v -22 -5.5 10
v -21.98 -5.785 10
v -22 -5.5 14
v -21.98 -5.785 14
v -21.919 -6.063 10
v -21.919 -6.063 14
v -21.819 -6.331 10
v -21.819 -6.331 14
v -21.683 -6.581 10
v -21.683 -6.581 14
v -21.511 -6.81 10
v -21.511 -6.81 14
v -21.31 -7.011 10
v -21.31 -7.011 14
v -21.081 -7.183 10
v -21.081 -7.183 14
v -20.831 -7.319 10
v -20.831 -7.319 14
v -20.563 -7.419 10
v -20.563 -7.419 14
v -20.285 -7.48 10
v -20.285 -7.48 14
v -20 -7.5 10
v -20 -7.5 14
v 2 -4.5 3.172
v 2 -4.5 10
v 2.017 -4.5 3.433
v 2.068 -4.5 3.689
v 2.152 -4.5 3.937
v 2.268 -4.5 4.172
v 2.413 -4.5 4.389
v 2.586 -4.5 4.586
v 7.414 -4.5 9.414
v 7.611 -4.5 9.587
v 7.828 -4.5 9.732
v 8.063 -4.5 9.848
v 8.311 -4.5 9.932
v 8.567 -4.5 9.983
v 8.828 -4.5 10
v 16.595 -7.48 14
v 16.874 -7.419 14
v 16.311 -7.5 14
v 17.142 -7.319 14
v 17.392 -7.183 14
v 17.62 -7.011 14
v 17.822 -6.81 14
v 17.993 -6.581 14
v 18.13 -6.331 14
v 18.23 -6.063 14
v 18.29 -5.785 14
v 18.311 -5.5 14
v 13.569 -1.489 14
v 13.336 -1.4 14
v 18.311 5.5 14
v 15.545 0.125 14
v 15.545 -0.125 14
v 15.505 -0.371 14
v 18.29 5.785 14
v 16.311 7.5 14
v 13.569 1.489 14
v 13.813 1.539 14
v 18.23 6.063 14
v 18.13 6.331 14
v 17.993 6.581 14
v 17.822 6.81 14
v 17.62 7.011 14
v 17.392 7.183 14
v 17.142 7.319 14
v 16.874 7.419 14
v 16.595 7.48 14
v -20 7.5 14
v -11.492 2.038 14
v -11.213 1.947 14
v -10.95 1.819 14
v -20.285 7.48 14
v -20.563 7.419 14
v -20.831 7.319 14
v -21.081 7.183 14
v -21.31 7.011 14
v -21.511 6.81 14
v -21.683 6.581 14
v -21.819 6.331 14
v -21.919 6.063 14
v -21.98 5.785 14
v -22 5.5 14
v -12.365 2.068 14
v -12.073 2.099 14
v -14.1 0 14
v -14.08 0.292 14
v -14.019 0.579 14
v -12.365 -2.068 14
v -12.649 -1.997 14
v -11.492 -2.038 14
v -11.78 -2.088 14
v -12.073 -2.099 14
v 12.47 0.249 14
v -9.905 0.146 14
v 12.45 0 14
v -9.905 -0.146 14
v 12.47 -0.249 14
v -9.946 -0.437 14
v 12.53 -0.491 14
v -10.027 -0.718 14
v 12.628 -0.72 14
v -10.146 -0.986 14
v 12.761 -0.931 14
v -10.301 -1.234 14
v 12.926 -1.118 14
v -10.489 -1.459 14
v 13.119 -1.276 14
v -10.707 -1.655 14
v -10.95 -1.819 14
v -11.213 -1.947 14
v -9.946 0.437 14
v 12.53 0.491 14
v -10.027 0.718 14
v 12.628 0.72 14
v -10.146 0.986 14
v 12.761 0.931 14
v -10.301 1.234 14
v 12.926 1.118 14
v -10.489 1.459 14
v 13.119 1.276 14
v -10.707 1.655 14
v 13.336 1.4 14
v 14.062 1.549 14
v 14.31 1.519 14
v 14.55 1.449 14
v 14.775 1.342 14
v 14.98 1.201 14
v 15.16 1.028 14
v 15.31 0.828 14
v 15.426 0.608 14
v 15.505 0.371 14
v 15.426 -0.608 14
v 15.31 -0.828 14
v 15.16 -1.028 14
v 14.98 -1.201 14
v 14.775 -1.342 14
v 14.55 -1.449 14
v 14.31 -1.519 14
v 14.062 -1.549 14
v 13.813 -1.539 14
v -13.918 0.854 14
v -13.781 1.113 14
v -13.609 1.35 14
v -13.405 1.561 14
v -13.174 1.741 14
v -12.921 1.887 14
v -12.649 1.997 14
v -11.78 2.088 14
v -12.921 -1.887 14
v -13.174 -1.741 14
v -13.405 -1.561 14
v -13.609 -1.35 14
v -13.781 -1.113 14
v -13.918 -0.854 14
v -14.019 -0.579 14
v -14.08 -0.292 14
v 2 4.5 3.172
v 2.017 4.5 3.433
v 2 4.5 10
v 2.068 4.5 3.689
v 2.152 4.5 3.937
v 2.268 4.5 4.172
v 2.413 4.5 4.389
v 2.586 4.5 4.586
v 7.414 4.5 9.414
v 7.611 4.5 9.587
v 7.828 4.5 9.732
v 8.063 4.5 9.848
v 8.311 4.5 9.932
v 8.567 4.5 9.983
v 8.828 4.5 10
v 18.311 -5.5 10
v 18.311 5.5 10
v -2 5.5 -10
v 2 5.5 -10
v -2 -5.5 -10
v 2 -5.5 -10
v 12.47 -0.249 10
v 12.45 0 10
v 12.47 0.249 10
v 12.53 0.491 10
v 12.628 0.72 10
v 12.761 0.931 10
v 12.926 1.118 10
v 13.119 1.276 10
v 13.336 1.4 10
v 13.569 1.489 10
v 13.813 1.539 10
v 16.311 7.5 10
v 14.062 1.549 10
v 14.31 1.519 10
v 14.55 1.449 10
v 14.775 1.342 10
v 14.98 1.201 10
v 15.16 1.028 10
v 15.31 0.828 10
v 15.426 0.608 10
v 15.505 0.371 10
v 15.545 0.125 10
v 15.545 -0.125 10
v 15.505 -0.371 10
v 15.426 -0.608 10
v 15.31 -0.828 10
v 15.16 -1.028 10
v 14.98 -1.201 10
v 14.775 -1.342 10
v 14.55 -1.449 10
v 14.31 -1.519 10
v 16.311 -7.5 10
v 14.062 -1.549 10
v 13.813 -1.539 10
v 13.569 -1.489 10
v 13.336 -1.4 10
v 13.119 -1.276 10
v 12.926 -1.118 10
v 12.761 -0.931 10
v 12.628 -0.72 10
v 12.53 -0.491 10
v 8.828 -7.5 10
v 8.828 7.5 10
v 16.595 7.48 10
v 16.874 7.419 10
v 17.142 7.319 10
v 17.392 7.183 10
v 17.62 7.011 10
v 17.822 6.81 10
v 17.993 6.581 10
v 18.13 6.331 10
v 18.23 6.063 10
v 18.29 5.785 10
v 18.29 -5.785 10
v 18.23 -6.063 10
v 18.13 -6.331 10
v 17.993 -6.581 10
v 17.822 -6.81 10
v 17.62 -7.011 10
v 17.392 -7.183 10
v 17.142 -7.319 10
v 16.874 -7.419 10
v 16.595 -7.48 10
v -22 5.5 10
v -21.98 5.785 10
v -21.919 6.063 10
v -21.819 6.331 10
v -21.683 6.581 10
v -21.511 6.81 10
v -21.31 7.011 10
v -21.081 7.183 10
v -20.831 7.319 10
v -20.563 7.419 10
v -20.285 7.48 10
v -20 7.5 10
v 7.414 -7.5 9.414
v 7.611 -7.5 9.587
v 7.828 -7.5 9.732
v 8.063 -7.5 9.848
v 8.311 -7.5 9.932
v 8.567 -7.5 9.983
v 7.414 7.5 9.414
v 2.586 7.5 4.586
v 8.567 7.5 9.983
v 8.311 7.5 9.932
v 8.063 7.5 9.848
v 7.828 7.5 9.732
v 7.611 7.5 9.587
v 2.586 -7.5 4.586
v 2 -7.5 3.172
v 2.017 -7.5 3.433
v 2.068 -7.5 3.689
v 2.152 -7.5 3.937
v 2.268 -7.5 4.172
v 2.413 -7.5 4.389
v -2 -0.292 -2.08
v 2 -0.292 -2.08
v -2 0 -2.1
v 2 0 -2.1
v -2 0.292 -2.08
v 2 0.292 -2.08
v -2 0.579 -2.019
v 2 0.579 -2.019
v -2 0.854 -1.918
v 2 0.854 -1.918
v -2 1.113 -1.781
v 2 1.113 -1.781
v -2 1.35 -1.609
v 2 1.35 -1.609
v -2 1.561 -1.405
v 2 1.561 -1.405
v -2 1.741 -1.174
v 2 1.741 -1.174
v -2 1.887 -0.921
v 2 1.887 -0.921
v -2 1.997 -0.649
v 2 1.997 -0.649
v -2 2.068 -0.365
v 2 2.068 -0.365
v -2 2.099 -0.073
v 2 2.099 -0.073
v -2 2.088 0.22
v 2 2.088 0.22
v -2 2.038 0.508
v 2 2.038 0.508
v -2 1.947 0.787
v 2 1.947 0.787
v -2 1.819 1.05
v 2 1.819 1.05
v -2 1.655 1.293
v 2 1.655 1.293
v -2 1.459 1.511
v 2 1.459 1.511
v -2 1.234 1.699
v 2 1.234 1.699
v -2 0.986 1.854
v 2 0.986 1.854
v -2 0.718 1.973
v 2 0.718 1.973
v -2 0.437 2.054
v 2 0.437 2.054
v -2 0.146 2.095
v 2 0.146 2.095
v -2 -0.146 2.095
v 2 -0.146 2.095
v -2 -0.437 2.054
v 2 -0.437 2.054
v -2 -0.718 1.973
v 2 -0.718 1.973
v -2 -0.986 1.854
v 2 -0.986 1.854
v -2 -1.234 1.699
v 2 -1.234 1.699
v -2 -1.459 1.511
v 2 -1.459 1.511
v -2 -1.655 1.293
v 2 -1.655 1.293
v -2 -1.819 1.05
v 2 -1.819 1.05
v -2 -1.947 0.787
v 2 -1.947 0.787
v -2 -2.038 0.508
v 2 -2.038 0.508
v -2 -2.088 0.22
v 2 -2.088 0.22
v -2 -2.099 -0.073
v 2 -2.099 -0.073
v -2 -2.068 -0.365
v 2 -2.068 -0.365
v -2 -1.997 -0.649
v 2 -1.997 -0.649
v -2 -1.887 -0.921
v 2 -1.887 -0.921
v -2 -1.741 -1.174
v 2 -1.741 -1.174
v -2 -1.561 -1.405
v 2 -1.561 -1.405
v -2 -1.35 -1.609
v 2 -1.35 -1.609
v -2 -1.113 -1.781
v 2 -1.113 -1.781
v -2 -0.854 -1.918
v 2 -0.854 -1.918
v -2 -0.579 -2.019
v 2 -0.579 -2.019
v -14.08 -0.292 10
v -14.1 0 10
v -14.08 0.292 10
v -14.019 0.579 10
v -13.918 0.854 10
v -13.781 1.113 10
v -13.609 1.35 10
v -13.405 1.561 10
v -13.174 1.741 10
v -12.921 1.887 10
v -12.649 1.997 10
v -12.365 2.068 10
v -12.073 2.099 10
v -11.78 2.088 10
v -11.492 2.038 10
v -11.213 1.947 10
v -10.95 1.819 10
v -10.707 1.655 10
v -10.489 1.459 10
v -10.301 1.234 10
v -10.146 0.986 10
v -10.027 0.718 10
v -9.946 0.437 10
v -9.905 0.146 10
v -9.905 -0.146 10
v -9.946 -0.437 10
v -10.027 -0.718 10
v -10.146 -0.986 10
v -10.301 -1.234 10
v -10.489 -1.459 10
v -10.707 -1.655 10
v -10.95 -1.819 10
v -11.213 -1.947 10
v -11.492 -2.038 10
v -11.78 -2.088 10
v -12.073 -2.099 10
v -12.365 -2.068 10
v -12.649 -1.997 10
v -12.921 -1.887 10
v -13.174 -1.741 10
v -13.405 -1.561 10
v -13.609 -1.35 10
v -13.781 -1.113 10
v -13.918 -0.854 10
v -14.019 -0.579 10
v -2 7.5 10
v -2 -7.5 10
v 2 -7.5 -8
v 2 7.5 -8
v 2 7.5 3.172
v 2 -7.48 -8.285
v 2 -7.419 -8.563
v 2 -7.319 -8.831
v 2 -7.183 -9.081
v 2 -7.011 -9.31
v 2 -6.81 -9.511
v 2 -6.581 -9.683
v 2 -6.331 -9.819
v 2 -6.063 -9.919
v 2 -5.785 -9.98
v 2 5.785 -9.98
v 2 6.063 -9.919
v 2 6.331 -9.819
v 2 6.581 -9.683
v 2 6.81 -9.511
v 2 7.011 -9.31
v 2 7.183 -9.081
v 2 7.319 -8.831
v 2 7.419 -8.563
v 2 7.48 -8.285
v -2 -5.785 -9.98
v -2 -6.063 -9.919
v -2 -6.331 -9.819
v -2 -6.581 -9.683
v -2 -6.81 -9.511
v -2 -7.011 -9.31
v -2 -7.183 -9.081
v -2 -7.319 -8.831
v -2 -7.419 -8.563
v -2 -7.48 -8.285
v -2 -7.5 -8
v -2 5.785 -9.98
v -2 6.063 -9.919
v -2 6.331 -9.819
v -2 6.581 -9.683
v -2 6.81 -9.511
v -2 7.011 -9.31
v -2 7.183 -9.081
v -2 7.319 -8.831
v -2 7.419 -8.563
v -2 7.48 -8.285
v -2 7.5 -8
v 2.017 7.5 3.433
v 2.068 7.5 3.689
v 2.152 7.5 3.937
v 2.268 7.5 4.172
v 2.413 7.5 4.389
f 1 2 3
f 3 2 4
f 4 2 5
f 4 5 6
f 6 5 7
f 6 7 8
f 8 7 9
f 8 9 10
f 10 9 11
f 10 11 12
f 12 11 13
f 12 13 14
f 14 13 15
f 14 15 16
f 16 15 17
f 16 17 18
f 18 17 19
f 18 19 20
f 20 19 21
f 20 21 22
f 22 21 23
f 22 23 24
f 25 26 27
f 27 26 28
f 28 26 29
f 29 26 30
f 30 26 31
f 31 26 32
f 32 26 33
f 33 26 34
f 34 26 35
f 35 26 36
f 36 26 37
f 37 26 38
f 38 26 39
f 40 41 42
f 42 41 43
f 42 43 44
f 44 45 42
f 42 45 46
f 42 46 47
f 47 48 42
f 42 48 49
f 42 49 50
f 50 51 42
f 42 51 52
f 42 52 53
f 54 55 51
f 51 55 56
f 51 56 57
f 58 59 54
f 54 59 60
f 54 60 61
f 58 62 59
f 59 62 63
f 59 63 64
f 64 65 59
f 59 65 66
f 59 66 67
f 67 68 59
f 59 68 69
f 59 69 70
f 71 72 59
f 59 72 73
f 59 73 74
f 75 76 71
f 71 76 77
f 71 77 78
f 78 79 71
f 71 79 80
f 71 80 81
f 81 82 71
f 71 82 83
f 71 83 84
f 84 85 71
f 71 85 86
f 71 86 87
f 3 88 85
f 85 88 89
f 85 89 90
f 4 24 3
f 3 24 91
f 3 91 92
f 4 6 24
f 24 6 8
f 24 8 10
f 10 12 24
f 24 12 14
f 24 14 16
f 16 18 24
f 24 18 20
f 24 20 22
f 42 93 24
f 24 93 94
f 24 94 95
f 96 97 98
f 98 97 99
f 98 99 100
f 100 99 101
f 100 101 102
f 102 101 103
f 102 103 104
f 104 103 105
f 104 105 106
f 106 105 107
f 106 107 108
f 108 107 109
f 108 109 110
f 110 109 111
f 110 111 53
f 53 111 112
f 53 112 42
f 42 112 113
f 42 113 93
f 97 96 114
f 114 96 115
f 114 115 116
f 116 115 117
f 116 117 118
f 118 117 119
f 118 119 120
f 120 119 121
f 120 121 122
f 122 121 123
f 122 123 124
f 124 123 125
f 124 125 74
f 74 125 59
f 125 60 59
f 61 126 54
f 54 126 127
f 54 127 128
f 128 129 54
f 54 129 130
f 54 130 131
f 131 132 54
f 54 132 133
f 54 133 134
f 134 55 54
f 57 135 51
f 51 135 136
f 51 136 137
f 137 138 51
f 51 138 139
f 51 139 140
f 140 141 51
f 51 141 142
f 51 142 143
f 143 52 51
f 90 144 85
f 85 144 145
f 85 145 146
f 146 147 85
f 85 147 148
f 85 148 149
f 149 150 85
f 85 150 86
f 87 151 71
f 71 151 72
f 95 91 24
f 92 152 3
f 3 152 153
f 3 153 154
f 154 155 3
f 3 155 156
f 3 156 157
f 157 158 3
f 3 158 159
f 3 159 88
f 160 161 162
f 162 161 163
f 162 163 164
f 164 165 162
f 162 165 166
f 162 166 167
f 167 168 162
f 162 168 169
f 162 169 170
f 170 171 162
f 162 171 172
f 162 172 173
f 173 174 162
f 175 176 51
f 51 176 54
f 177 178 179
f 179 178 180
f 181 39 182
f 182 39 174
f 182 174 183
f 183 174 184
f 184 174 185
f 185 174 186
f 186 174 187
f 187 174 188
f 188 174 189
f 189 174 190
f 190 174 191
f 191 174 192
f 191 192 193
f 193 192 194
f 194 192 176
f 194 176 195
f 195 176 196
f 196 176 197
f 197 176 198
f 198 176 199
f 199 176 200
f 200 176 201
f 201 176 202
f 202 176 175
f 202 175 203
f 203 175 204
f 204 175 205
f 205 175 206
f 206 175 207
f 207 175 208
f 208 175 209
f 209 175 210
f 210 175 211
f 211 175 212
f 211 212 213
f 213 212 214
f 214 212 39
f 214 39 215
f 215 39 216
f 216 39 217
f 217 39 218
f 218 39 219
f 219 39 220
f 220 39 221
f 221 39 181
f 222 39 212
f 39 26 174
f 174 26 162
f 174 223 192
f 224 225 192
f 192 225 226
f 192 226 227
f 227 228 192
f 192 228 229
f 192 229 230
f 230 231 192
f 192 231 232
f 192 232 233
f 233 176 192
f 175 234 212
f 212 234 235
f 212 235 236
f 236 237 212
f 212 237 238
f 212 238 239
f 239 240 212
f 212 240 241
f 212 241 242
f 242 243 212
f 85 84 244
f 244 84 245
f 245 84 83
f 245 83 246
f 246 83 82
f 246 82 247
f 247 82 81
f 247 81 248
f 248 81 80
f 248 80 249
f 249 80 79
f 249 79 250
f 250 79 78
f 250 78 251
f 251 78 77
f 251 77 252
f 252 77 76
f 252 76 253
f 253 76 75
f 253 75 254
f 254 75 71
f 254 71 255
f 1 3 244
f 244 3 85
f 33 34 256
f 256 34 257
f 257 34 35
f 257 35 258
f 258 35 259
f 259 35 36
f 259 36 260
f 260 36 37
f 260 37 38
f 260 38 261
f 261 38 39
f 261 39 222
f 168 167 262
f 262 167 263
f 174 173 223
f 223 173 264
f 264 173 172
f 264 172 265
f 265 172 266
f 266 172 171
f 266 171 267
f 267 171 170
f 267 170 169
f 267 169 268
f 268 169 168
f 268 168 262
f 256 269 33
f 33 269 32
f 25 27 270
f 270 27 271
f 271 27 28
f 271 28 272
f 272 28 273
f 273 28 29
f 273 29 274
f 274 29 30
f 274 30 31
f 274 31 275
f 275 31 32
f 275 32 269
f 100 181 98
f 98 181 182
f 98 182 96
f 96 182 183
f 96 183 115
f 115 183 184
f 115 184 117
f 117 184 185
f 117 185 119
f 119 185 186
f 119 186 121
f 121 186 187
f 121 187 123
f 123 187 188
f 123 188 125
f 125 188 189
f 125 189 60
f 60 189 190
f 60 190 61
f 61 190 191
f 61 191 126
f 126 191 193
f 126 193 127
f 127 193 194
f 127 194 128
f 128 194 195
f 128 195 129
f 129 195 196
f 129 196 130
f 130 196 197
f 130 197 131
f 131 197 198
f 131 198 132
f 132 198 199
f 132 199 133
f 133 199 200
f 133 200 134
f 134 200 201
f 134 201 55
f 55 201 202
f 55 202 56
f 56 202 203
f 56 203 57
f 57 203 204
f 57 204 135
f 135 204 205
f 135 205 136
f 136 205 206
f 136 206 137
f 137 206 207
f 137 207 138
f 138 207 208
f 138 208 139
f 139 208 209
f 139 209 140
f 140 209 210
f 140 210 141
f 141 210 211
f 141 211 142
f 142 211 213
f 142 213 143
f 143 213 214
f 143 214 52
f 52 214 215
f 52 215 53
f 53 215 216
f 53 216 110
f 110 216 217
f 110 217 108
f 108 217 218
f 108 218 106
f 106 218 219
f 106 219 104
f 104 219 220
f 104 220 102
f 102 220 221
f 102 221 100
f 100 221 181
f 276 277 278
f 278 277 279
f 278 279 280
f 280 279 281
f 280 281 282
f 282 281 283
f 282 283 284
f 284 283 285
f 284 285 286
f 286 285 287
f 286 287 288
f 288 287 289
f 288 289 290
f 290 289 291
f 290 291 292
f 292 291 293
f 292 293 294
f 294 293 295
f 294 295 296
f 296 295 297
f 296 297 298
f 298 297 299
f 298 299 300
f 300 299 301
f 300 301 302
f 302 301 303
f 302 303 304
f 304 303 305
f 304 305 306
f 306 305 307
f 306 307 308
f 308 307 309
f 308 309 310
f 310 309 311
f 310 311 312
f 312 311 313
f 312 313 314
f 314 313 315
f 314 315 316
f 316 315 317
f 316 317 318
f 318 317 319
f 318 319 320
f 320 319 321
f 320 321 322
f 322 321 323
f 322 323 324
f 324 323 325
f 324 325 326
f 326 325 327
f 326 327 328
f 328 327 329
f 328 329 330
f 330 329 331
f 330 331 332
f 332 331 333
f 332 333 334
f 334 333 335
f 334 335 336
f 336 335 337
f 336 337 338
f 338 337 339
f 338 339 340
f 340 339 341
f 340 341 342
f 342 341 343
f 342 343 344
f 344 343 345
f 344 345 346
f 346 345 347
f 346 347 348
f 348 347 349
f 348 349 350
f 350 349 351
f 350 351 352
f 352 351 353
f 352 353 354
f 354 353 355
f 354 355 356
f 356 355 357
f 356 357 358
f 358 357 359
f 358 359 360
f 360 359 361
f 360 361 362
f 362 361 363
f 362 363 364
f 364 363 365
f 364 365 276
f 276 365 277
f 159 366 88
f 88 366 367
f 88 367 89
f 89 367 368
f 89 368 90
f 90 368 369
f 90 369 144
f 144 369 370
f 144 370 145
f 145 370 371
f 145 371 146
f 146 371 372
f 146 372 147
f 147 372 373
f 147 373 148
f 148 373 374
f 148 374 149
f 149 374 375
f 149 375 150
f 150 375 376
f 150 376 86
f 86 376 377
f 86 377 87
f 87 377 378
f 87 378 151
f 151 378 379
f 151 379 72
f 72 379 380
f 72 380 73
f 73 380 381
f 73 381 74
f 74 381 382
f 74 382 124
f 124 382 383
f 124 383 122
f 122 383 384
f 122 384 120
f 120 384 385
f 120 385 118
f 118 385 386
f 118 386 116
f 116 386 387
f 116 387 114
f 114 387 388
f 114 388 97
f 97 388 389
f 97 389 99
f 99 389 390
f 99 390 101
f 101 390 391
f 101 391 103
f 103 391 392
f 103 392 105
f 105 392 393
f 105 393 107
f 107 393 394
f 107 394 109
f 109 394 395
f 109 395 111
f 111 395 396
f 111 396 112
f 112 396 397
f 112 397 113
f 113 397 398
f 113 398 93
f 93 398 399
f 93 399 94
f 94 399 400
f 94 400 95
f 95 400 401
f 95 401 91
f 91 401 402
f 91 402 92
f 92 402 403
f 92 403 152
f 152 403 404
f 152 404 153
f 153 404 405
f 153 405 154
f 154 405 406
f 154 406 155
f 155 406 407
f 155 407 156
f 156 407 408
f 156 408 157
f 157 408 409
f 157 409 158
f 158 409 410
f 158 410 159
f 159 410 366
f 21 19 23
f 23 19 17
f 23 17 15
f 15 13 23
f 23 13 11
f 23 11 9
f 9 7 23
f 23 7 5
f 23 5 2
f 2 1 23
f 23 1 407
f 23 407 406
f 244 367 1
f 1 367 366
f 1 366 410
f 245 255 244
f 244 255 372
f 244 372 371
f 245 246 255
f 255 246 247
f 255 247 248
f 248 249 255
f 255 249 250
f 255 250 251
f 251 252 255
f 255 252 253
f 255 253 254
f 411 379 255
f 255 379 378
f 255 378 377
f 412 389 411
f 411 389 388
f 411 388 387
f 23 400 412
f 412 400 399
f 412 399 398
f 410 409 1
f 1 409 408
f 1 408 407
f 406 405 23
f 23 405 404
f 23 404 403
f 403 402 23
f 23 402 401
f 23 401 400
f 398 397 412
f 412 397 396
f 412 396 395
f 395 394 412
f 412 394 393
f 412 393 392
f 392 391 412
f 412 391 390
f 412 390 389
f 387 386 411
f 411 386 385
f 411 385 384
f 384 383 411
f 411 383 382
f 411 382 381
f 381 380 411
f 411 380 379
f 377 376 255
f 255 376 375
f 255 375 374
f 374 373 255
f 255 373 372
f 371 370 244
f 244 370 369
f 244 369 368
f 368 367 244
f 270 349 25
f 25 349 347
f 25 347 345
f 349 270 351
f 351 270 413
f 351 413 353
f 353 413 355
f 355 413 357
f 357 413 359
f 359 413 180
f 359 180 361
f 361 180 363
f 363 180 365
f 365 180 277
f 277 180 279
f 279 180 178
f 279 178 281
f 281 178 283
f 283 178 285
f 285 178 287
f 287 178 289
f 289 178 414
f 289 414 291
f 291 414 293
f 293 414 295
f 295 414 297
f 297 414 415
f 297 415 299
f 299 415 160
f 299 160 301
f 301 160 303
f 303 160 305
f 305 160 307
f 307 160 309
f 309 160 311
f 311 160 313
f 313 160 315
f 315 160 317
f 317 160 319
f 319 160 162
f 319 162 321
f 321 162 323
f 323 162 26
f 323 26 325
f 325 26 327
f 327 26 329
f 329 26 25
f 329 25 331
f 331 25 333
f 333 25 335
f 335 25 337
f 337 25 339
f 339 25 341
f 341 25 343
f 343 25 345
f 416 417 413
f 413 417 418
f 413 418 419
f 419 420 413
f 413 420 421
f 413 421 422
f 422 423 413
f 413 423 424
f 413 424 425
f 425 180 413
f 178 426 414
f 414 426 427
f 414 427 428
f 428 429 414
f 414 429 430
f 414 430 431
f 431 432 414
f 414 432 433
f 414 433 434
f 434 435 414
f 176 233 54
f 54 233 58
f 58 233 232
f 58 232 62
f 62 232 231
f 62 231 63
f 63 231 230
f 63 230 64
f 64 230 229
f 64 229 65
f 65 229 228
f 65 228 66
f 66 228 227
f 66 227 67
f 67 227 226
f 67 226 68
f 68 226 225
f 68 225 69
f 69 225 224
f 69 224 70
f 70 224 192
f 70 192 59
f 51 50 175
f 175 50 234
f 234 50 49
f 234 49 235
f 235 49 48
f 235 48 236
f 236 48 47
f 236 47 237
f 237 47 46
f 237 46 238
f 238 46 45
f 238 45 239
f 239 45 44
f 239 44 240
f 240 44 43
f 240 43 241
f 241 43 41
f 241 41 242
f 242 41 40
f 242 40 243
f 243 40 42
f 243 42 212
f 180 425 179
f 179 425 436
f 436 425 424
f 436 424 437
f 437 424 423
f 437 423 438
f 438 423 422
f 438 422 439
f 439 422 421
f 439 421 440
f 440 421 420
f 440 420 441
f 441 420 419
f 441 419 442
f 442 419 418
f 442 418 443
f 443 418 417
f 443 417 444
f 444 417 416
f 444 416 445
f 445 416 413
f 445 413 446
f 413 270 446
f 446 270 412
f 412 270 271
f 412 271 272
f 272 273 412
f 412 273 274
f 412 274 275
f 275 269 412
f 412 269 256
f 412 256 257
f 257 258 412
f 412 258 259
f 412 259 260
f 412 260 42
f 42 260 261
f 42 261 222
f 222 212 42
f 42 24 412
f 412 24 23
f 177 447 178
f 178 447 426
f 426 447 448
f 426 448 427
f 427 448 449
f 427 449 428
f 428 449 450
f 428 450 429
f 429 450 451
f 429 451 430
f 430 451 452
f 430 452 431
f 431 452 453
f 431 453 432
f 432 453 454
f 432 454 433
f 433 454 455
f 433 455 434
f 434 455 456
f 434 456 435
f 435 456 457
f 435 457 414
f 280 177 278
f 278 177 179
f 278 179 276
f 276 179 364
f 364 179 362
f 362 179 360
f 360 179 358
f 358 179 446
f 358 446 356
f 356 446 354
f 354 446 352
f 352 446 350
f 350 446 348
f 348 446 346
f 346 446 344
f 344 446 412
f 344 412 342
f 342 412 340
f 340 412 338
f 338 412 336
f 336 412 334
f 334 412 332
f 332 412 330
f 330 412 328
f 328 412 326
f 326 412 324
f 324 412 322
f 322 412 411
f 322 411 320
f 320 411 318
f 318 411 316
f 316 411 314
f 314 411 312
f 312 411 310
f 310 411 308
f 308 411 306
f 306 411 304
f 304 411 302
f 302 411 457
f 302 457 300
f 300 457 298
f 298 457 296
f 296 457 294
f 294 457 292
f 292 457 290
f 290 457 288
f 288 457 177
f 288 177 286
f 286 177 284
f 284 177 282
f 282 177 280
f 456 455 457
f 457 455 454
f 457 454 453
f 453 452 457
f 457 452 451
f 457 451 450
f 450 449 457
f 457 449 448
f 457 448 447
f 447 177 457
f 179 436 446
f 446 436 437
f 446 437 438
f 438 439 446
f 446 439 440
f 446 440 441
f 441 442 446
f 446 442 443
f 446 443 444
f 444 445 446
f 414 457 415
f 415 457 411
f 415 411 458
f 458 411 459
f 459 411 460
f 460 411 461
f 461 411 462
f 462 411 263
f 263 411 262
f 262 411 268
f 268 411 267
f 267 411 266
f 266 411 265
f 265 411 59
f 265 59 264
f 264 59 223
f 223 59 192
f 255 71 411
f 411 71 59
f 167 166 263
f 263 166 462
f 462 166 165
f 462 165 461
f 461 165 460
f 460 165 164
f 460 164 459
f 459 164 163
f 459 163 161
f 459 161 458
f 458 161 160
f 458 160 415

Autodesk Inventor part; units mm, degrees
ref_plane "YZ Plane" through (0, 0, 0) normal (1, 0, 0) x (0, 1, 0)
ref_plane "XZ Plane" through (0, 0, 0) normal (0, 1, 0) x (-1, 0, 0)
ref_plane "XY Plane" through (0, 0, 0) normal (0, 0, 1) x (1, 0, 0)
sketch "Sketch1" plane through (0, 0, 0) normal (0, 1, 0) x (-1, 0, 0)
  line L0 (22, 14) -> (-22, 14)
  line L1 (-22, 14) -> (-22, 10)
  line L2 (-22, 10) -> (-2, 10)
  line L3 (-2, 10) -> (-2, -10)
  line L4 (-2, -10) -> (2, -10)
  line L5 (2, -10) -> (2, 10)
  line L6 (2, 10) -> (22, 10)
  line L7 (22, 10) -> (22, 14)
  point P0 (0, 0)
  point P1 (-2, 0)
  point P2 (0, 14)
  dimension "d0" = 20
  dimension "d1" = 4
  dimension "d2" = 20
  dimension "d3" = 4
  dimension "d4" = 20
extrude "Extrusion1" add sketch "Sketch1" along normal mid plane 15
sketch "Sketch2" plane through (-2, -7.5, 10) normal (0, 0, -1) x (-1, 0, 0)
  line L0 (20, 0) -> (0, 0) projected
  line L1 (20, 0) -> (20, 15) projected
  line L2 (0, 15) -> (20, 15) projected
  line L3 (0, 0) -> (0, 15) projected
  circle A0 centre (10, 7.5) radius 2.1
  point P0 (-2, 7.5)
  point P1 (20, 7.5)
  point P2 (10, 0)
  dimension "d7" = 4.2
extrude "Extrusion2" cut sketch "Sketch2" against normal up to next contours A0
sketch "Sketch3" plane through (2, -7.5, 10) normal (1, 0, 0) x (0, 0, -1)
  line L0 (20, 0) -> (0, 0) projected
  line L1 (20, 0) -> (20, 15) projected
  line L2 (0, 15) -> (20, 15) projected
  line L3 (0, 0) -> (0, 15) projected
  circle A0 centre (10, 7.5) radius 2.1
  point P0 (20, 7.5)
  point P1 (10, 0)
  dimension "d10" = 4.2
extrude "Extrusion3" cut sketch "Sketch3" against normal up to next contours A0
sketch "Sketch4" plane through (22, -7.5, 10) normal (0, 0, -1) x (-1, 0, 0)
  circle A0 centre (8, 7.5) radius 1.55
  line L0 (0, 0) -> (0, 15) projected
  point P0 (22, 7.5)
  point P1 (0, 7.5)
  dimension "d13" = 3.1
  dimension "d14" = 8
extrude "Extrusion4" cut sketch "Sketch4" against normal up to next
sketch "Sketch5" plane through (0, 7.5, 0) normal (0, 1, 0) x (1, 0, 0)
  line L0 (2, -4) -> (8, -10)
  line L1 (22, -10) -> (2, -10) projected
  line L2 (2, -10) -> (2, -4)
  line L3 (8, -10) -> (2, -10)
  point P0 (0, 0)
  dimension "d17" = 6
  dimension "d18" = 6
extrude "Extrusion5" add sketch "Sketch5" against normal blind 3
mirror "Mirror1" about plane through (0, 0, 0) normal (0, 1, 0) of "Extrusion5"
fillet "Fillet1" radius 2 4 edges at (-22, 7.5, 12) (22, 7.5, 12) (22, -7.5, 12) (-22, -7.5, 12)
sketch "Sketch6" plane through (8, 4.5, 10) normal (0, 0, -1) x (-1, 0, 0)
  point P0 (8, -4.5)
sketch "Sketch7" plane through (8, 4.5, 10) normal (0, 0, -1) x (-1, 0, 0)
  line L0 (-10.3107, -14.1904) -> (-16.6719, -14.1904)
  line L1 (-16.6719, -14.1904) -> (-16.6719, 4.7743)
  line L2 (-16.6719, 4.7743) -> (-10.3107, 4.7743)
  line L3 (-10.3107, 4.7743) -> (-10.3107, -14.1904)
  point P0 (8, -4.5)
extrude "Extrusion6" cut sketch "Sketch7" against normal up to next
fillet "Fillet2" radius 2 2 edges at (18.3107, 7.5, 12) (18.3107, -7.5, 12)
fillet "Fillet3" radius 2 6 edges at (0, -7.5, -10) (0, 7.5, -10) (2, 6, 4) (2, -6, 4) (8, 6, 10) (8, -6, 10)
properties part number "mount-heated-bed"
